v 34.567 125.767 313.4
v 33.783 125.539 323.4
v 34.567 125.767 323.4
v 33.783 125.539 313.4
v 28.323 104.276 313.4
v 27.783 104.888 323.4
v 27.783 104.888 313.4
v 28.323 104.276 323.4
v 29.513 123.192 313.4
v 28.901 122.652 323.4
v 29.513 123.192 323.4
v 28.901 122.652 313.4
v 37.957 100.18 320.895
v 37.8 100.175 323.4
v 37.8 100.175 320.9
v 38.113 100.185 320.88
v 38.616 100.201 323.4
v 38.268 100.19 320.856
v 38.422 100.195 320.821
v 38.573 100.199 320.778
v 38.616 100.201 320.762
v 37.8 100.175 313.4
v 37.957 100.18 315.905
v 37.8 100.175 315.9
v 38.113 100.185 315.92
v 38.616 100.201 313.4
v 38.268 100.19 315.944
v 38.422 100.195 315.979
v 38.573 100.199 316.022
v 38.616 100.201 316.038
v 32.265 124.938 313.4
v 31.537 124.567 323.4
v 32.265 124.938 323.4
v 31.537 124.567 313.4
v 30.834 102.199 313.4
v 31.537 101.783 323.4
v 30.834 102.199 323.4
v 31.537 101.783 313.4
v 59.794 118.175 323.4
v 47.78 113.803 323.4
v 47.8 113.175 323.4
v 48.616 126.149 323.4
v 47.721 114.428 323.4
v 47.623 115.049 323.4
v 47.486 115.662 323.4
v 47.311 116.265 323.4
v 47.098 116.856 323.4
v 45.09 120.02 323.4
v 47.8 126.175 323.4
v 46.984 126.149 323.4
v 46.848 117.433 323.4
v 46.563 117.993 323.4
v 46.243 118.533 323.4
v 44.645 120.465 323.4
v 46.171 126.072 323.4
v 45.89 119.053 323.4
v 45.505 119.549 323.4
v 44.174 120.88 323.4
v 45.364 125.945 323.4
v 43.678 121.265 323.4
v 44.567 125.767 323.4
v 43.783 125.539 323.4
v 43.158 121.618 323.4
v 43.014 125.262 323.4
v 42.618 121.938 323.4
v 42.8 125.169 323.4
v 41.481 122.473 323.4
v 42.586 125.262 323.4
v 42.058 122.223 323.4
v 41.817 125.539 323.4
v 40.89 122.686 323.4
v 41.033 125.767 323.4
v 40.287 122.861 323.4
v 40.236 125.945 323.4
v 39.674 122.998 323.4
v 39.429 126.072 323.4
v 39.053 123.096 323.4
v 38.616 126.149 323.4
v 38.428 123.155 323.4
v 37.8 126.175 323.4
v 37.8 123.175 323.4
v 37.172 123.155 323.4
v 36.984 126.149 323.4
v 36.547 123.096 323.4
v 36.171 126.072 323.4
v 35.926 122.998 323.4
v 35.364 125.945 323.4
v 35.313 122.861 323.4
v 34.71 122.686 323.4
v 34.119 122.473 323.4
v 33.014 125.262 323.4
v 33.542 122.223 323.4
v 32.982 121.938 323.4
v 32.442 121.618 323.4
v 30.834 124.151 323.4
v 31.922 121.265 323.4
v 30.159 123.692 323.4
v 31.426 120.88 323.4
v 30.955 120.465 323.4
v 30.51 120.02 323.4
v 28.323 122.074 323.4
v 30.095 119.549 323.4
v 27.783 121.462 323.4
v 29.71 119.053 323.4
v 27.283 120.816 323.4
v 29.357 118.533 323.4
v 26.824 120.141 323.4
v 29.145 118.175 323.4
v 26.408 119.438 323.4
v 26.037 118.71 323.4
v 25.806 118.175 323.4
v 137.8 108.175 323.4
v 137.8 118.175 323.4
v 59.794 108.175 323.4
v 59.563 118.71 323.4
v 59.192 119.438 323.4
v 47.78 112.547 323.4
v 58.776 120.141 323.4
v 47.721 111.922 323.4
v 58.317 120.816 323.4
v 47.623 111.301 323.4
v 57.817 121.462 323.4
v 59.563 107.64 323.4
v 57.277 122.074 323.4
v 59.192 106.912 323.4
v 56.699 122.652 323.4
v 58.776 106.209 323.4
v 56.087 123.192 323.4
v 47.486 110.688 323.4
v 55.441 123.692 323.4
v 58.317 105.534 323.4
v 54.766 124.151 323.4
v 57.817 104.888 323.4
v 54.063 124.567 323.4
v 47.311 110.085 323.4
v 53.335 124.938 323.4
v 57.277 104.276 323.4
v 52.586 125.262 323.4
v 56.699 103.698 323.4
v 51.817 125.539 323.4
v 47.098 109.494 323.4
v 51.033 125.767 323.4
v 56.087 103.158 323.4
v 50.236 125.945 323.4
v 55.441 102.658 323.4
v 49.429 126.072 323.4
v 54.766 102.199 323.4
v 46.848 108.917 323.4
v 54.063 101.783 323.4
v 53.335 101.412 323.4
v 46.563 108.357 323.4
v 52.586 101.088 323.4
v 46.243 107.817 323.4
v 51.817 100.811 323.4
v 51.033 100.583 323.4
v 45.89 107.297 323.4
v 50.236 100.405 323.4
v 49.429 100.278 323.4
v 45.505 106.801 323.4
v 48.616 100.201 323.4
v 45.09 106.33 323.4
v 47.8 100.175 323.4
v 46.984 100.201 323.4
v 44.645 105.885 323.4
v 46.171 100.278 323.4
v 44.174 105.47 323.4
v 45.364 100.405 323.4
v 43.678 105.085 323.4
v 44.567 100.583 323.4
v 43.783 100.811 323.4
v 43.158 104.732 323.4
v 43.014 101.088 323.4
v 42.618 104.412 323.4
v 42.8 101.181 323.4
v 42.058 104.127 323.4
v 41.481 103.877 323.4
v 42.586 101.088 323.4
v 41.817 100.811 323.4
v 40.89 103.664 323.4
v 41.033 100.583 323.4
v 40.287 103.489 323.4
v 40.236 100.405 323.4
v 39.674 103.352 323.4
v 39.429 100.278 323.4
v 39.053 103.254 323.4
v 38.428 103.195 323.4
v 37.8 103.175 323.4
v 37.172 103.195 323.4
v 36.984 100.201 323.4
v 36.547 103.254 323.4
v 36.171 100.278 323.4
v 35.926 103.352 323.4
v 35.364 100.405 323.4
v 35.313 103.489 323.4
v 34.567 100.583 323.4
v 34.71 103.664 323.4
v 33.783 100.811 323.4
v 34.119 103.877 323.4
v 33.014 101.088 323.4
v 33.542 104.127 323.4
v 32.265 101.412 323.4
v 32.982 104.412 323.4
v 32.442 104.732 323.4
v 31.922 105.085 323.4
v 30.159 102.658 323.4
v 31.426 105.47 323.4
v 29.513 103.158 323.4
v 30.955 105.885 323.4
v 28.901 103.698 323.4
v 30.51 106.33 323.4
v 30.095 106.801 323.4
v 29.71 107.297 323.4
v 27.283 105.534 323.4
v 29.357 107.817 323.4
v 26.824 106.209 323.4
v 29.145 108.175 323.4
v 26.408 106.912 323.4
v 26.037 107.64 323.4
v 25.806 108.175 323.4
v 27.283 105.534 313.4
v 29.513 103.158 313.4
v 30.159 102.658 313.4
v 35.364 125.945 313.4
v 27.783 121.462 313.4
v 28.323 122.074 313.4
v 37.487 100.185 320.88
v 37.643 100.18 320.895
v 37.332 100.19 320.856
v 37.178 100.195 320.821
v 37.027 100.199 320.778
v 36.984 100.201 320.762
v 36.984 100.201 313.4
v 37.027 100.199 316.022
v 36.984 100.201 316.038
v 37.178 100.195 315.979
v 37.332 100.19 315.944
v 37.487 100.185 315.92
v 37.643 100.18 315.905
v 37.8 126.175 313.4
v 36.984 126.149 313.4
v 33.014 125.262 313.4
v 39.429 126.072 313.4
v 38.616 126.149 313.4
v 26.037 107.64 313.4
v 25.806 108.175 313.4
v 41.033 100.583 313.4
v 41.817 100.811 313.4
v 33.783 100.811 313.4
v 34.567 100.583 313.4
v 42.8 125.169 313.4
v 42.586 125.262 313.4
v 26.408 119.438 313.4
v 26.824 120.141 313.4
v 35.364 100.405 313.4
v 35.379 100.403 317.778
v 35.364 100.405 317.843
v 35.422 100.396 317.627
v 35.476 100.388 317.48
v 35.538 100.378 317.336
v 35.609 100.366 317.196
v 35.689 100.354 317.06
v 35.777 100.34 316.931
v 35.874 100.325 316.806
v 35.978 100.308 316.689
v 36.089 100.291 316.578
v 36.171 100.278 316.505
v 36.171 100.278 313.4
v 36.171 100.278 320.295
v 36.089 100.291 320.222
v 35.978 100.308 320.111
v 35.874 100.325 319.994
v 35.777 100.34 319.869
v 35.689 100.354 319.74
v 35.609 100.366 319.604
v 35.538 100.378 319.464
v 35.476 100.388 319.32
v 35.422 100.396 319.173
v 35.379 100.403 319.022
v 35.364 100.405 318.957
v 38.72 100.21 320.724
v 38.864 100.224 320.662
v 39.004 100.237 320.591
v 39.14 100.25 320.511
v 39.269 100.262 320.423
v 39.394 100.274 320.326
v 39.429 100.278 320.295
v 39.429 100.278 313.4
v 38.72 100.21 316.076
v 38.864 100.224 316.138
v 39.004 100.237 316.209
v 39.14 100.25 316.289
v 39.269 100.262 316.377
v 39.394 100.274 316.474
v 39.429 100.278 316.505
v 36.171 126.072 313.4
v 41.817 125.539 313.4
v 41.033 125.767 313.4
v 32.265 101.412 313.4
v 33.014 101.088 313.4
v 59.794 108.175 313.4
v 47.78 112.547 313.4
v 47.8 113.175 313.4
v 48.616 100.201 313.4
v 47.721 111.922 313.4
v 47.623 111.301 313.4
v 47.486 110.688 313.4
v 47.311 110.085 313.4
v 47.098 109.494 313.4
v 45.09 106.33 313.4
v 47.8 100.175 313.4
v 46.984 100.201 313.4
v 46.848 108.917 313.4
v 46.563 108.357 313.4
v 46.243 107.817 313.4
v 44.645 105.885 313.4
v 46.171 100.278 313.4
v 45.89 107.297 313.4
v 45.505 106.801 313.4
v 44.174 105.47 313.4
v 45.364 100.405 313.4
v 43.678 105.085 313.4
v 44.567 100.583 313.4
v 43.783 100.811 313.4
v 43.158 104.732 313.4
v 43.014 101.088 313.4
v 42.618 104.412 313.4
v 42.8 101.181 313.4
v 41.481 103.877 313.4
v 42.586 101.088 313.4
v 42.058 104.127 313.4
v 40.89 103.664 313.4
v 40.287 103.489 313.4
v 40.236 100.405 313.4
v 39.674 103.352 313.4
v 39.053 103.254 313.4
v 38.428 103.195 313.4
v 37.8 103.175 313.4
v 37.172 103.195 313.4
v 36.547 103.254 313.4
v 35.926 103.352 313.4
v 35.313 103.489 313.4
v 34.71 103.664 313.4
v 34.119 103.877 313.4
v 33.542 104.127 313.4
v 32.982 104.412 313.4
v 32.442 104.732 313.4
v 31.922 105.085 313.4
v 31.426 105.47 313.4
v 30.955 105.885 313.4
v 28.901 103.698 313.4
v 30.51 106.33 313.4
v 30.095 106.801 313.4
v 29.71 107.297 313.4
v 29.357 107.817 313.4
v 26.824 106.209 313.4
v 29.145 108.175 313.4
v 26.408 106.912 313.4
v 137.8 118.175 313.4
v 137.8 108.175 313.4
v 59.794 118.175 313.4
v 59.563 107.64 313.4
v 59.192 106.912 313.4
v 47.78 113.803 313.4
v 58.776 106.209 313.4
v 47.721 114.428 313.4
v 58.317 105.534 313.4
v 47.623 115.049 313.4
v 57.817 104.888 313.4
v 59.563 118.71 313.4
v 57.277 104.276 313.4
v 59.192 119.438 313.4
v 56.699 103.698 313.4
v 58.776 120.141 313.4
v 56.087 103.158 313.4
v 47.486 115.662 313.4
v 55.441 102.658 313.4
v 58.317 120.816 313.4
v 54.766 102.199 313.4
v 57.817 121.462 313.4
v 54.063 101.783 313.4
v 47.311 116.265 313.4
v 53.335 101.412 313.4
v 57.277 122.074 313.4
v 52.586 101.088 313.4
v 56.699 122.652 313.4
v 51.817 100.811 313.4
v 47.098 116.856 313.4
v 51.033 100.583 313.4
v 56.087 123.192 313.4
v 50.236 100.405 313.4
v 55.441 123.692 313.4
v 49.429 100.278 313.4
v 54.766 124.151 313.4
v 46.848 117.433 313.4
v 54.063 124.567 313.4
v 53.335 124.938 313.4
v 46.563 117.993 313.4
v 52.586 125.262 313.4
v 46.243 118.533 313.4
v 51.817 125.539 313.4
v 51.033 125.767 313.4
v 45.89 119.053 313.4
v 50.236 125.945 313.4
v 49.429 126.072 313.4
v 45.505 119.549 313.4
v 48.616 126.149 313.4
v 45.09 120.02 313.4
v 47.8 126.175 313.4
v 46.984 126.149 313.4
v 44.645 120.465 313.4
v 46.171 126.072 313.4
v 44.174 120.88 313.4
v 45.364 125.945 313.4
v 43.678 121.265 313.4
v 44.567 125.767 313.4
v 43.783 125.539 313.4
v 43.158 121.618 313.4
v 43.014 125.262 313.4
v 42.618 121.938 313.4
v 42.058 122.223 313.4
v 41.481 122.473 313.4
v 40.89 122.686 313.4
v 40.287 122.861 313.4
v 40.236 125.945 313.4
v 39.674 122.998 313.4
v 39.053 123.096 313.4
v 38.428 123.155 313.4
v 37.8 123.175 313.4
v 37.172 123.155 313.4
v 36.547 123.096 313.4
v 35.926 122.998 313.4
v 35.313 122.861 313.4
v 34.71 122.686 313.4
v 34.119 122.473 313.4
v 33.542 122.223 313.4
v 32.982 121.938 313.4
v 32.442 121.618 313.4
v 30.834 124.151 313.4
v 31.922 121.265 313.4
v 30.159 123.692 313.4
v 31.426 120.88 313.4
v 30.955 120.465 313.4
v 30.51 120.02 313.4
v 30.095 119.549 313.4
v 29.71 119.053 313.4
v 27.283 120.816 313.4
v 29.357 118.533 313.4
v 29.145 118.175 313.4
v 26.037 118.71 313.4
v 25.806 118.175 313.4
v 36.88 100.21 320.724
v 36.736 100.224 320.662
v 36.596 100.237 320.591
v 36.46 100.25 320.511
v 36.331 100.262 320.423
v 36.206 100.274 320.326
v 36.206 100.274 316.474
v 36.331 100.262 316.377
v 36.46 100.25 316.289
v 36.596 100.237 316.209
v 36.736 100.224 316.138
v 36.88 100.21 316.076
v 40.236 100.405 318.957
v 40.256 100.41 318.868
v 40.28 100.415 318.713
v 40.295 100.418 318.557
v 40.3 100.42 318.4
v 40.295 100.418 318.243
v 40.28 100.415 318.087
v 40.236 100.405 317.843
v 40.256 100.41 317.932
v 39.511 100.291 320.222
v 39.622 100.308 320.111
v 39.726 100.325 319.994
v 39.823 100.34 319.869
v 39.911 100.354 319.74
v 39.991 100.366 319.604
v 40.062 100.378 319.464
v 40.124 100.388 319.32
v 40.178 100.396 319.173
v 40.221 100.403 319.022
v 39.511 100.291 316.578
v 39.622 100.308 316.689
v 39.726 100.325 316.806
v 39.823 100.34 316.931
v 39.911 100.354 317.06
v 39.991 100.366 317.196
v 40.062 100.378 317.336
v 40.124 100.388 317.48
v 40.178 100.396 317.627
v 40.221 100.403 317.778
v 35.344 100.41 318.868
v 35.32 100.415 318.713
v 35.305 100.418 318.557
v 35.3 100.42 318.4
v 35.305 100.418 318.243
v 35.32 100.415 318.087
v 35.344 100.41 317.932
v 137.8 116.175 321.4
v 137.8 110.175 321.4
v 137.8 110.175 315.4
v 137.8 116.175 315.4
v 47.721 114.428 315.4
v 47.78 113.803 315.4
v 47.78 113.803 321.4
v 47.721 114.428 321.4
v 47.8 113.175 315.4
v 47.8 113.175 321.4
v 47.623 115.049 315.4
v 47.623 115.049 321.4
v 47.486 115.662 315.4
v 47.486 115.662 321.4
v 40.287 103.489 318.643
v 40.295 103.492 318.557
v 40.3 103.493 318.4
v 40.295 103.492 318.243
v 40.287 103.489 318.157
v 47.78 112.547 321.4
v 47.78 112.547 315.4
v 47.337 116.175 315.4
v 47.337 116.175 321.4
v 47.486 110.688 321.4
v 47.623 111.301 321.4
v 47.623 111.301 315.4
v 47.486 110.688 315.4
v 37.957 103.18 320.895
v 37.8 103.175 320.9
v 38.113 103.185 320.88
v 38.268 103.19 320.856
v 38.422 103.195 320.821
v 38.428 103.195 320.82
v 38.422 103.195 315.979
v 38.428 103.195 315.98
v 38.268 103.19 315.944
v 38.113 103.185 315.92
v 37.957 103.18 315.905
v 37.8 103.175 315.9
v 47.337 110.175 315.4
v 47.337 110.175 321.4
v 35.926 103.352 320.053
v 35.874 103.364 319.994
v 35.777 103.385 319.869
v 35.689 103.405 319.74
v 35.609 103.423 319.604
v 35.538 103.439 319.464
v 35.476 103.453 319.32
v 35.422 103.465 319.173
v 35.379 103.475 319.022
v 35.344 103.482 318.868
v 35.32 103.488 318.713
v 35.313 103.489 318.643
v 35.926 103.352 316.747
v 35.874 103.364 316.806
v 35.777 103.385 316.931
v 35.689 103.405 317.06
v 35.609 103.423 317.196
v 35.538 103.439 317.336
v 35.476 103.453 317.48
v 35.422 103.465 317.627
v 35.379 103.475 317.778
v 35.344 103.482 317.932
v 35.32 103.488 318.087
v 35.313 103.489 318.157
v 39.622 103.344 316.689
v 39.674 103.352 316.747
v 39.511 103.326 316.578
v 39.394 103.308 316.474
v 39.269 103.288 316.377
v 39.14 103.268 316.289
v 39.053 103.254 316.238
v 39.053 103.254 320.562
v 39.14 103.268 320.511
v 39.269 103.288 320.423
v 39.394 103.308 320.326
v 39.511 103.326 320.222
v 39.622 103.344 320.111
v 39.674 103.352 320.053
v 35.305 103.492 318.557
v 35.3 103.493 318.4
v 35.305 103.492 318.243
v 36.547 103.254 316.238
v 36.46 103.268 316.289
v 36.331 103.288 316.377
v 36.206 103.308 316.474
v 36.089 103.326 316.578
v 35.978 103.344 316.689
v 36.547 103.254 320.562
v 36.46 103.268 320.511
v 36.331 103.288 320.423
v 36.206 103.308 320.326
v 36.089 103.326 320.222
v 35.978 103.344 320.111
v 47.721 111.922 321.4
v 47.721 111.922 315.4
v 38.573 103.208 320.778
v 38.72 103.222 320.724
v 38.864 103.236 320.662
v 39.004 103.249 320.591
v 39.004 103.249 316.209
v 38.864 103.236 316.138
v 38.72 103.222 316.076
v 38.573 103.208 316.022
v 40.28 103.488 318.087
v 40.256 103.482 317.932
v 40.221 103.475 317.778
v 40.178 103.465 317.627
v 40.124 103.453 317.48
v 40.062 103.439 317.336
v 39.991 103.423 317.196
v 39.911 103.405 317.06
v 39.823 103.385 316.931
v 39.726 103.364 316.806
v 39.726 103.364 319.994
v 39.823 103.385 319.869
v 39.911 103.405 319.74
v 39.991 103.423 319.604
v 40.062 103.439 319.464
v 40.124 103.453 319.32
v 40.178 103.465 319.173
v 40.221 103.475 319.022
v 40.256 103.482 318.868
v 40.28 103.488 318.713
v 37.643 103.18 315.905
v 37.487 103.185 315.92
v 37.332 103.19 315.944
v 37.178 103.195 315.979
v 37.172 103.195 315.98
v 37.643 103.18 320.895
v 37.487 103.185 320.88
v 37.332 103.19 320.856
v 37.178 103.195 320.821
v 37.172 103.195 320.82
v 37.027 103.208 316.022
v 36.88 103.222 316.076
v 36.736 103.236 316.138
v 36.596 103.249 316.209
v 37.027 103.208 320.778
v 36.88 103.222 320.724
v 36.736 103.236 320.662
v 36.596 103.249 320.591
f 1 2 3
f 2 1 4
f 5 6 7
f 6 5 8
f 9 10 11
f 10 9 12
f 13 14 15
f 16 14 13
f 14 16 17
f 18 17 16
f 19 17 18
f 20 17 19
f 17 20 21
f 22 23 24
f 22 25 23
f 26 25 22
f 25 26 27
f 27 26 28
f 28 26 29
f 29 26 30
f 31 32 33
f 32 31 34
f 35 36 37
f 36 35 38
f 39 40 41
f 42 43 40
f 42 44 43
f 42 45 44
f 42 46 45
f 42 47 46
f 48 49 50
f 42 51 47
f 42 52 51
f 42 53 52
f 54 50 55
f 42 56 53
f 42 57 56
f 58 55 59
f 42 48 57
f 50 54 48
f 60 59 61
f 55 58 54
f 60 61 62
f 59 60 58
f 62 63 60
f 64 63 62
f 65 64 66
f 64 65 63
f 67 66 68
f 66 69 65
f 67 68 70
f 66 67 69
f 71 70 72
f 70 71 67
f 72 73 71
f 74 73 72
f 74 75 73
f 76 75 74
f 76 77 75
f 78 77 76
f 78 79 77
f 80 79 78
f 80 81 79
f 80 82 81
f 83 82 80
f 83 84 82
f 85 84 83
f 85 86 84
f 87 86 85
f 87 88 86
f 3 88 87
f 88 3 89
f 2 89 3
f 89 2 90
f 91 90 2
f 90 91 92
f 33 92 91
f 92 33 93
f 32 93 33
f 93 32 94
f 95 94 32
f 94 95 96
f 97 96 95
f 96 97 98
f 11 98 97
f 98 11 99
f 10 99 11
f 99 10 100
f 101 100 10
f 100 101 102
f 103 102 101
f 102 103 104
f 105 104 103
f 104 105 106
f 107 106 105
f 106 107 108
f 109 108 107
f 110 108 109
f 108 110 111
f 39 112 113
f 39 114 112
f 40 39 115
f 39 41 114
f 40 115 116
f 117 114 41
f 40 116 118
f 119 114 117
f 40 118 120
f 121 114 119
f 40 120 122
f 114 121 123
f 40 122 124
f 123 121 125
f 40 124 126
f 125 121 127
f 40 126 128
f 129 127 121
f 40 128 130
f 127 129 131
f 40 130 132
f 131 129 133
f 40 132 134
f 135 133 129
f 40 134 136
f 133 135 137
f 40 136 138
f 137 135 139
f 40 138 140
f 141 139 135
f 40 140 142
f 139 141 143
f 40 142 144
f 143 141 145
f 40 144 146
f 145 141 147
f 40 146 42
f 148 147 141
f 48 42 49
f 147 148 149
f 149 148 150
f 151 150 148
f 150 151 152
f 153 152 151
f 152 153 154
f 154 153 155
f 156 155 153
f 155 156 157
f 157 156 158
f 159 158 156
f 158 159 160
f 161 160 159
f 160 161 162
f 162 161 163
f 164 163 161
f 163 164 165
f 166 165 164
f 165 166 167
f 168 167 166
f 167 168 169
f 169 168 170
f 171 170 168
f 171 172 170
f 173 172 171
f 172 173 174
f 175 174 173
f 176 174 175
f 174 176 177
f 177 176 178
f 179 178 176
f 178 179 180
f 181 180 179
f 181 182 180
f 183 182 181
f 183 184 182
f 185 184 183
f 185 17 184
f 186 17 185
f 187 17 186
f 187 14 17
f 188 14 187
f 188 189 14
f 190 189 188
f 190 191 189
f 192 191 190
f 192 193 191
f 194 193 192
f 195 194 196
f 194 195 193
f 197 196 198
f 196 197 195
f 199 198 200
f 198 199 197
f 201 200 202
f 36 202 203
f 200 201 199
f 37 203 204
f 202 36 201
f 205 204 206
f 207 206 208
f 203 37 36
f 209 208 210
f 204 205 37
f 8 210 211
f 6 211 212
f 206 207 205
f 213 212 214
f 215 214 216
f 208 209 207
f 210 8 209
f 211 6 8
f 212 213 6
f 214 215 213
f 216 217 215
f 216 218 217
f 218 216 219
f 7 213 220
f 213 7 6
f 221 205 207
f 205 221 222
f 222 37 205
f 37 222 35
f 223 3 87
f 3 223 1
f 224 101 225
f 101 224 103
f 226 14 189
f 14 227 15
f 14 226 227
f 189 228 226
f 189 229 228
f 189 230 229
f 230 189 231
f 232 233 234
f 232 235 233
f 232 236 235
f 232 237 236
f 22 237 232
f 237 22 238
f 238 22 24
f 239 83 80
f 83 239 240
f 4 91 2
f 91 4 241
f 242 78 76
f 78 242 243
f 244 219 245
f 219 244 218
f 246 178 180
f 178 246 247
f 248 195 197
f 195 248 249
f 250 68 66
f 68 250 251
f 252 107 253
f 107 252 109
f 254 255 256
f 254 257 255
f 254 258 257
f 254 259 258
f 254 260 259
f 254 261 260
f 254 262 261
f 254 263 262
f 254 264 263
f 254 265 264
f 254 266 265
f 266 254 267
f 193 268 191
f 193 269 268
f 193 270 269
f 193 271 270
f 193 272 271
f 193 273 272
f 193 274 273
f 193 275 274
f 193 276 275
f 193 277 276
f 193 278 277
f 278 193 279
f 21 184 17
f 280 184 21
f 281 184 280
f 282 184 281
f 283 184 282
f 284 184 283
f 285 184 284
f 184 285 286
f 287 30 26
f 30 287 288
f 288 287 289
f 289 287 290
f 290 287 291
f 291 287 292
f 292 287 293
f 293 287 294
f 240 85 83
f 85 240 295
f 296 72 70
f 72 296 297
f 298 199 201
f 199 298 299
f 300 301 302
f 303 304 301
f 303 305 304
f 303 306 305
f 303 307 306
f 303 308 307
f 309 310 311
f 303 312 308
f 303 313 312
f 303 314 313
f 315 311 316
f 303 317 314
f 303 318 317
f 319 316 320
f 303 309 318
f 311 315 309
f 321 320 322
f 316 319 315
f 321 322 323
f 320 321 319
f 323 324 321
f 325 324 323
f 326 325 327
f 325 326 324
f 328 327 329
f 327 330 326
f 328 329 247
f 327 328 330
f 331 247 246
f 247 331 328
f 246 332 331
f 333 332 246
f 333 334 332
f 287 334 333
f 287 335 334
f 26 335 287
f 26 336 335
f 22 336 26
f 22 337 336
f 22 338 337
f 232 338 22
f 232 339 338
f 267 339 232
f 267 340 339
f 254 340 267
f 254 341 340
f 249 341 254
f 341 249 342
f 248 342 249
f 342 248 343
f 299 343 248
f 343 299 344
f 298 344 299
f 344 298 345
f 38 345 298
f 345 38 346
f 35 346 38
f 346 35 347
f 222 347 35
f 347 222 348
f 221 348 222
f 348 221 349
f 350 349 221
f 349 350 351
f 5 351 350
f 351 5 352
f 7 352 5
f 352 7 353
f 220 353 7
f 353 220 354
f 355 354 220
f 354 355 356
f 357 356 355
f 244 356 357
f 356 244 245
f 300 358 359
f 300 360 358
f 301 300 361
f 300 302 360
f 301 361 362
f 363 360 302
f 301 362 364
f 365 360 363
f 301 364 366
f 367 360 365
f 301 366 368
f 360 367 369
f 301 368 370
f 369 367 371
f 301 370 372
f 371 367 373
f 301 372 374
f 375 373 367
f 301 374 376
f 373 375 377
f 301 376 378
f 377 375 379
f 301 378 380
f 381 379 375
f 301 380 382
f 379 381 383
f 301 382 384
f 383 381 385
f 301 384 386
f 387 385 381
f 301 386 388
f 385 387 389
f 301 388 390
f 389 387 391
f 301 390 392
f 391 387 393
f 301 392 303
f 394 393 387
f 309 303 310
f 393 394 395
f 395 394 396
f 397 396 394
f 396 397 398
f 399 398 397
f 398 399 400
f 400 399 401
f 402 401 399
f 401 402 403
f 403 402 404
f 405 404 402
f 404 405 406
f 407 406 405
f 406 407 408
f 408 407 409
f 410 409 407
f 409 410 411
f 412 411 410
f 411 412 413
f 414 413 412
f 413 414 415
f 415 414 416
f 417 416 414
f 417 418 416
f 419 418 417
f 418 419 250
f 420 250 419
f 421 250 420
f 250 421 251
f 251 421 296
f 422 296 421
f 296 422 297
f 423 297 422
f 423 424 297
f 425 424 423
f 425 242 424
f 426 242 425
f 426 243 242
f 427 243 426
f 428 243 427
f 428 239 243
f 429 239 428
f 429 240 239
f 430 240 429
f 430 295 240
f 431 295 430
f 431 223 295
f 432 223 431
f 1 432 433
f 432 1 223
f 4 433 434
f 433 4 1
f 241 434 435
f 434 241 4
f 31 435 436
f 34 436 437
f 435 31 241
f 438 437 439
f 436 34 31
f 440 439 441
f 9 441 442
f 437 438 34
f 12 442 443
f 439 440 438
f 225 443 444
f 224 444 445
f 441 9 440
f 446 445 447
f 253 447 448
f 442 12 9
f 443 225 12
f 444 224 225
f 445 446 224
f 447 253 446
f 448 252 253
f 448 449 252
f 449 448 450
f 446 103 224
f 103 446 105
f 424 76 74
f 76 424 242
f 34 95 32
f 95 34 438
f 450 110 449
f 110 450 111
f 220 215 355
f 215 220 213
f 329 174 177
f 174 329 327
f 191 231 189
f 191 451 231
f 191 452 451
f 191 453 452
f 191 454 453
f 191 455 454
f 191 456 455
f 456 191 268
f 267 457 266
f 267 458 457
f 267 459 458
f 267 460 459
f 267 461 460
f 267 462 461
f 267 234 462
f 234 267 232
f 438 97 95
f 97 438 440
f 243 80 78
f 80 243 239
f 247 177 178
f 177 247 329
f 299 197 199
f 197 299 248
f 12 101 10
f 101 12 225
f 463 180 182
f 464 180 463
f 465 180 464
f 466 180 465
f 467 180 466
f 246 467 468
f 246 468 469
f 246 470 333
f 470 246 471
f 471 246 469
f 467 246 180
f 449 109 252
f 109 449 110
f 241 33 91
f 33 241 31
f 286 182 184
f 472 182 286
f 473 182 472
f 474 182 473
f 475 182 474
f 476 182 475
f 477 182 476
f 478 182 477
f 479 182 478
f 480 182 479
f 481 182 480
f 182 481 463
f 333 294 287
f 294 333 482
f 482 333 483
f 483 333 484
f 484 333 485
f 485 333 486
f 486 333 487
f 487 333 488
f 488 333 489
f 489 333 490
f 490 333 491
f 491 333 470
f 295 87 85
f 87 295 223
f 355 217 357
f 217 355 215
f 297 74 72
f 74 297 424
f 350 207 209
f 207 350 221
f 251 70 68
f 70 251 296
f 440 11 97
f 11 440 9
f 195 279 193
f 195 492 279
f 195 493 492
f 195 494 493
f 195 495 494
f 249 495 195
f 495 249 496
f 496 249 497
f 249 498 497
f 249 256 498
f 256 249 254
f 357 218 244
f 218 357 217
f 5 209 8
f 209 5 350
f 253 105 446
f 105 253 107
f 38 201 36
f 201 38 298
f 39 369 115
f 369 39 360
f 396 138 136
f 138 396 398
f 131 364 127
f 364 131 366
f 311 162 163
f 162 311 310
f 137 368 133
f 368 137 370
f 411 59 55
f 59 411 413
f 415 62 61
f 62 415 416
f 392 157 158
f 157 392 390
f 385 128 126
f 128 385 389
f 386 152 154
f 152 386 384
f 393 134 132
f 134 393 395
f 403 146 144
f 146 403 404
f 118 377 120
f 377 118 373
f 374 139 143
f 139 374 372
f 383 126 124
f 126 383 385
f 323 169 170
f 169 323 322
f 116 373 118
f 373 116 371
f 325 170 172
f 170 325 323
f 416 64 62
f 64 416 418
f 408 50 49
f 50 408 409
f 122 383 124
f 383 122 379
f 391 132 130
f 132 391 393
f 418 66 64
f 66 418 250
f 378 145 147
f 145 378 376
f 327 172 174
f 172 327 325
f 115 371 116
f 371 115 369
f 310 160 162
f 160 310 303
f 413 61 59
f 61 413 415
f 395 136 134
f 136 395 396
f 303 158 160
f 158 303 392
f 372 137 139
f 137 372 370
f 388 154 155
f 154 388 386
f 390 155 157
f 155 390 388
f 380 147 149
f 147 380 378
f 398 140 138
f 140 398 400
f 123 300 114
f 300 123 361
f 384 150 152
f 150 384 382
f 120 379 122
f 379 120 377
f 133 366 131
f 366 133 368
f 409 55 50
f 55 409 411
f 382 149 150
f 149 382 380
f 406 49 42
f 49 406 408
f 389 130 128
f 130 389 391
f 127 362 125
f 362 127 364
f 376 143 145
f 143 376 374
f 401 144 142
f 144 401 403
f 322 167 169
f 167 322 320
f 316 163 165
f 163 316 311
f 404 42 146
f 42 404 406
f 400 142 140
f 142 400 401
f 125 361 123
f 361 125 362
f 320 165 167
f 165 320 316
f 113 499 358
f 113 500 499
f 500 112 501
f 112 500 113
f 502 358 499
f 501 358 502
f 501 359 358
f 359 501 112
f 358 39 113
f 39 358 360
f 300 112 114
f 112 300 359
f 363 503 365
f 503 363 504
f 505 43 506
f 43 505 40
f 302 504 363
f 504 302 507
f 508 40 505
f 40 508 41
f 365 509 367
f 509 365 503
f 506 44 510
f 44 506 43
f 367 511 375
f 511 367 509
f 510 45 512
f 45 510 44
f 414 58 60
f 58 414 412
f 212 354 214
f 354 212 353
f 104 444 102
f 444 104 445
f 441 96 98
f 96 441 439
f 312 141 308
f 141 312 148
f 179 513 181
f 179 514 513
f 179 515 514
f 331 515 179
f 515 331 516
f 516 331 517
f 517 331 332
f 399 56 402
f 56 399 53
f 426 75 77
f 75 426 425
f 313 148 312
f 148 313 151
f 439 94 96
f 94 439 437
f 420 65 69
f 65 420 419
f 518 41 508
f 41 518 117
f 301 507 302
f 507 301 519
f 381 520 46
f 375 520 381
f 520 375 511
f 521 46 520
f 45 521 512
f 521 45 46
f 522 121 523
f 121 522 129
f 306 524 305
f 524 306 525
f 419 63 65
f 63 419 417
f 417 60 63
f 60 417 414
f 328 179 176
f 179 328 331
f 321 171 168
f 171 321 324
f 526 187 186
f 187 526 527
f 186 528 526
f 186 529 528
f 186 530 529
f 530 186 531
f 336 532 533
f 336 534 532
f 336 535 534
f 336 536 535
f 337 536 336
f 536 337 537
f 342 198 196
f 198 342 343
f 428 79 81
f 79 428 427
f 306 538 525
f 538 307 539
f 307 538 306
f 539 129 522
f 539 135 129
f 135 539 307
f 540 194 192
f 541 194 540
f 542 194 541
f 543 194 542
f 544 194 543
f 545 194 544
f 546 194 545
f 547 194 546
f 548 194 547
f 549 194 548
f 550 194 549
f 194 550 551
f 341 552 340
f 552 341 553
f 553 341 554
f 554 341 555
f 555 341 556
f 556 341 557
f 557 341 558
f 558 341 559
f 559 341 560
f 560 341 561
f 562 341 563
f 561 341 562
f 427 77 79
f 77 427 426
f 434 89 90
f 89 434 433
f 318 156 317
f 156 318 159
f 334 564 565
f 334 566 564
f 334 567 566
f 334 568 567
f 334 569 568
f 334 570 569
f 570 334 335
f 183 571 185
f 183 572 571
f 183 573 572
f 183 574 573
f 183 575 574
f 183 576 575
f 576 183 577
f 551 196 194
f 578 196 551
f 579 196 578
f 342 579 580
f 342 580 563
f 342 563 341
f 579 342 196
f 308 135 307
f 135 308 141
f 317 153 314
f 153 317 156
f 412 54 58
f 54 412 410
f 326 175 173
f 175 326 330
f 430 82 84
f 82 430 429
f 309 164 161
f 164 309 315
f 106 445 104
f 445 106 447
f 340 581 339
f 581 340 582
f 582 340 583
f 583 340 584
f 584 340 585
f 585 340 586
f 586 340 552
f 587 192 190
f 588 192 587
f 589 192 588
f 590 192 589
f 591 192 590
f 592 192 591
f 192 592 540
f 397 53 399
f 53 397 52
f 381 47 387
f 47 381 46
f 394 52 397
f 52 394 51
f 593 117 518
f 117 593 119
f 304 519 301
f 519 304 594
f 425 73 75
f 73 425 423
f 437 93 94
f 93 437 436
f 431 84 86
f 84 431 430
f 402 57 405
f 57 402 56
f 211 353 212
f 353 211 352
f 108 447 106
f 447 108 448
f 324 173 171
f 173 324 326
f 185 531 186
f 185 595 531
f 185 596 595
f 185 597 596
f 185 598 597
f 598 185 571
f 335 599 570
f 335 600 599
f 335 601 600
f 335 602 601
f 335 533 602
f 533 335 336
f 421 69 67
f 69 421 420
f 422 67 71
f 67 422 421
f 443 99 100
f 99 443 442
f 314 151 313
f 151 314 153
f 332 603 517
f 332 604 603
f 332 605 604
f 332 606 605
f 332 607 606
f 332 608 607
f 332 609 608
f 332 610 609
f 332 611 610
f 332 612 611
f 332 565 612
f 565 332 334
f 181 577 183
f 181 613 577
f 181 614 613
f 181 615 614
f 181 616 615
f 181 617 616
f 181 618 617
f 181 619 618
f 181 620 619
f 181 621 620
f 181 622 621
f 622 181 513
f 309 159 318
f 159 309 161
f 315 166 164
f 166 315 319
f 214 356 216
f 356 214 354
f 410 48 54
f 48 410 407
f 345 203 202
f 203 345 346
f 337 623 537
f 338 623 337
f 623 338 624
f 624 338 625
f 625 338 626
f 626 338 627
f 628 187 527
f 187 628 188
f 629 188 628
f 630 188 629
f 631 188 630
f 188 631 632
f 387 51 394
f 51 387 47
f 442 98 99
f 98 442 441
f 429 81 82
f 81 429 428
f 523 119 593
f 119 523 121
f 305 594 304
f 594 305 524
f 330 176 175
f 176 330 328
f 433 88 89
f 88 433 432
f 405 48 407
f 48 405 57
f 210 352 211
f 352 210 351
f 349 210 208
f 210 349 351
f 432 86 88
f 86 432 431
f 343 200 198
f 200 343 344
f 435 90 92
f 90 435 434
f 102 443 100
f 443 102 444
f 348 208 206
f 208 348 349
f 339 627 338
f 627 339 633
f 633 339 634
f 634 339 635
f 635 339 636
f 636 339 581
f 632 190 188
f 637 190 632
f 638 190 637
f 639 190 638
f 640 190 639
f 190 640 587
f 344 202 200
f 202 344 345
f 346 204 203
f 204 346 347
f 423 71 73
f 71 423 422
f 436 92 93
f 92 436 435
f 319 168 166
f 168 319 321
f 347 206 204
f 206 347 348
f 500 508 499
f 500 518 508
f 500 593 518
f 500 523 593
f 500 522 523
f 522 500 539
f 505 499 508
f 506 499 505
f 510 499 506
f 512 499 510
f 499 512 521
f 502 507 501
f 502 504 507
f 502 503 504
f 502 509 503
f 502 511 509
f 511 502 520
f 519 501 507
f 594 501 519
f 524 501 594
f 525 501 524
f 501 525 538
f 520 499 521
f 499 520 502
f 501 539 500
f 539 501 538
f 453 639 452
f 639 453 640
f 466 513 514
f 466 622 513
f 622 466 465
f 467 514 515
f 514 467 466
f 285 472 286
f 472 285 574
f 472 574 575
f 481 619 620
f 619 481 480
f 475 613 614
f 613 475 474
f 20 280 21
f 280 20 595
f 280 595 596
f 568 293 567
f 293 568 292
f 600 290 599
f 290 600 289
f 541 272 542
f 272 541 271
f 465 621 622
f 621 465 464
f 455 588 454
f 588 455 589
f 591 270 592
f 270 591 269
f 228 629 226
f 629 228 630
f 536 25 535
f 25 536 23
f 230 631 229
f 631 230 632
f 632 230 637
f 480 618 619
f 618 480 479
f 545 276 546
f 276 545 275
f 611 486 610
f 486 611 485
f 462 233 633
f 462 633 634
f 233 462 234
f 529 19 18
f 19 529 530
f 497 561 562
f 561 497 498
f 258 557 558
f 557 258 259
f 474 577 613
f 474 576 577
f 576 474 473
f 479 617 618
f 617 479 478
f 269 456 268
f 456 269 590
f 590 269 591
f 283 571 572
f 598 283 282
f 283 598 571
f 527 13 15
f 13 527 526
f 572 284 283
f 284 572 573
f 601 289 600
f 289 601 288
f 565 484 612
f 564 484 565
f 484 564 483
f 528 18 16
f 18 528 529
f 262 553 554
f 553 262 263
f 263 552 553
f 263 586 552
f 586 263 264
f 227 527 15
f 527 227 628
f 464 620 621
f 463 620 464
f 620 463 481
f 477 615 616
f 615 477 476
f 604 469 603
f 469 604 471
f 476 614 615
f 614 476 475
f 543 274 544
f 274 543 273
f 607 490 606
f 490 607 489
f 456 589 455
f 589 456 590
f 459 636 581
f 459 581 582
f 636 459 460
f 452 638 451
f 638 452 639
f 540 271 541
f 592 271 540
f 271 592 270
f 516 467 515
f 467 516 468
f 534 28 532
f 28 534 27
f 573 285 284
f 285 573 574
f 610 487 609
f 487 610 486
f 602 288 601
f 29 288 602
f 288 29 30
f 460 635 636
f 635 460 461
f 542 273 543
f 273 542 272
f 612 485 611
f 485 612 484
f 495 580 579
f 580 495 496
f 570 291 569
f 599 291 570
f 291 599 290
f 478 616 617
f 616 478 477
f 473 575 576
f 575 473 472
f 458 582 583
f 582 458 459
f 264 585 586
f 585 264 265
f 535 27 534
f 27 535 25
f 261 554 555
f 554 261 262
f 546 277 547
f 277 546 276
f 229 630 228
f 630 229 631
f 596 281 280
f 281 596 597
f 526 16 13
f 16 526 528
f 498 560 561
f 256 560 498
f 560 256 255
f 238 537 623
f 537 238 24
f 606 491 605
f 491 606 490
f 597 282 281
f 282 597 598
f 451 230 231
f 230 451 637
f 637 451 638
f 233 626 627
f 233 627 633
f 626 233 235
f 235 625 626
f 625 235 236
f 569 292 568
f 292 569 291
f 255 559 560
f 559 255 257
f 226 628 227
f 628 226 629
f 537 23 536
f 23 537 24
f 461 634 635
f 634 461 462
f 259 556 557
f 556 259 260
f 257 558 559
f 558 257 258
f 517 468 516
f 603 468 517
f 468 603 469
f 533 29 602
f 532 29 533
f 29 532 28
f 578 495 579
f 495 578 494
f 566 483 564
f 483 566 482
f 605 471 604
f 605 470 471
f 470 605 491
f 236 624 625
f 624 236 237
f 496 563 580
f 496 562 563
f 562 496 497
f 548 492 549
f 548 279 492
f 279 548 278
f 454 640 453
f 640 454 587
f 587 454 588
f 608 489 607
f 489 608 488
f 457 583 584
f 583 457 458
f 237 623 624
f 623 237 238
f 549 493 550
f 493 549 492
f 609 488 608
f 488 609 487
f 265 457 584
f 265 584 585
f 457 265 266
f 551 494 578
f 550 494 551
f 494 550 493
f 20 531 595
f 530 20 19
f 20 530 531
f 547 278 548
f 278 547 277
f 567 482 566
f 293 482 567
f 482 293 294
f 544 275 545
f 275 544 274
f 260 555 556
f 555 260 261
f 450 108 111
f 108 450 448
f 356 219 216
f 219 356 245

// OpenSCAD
// file: funcBastaoRetratil.scad
// ----- ----- ----- Declaração de Variáveis ----- ----- ----- //

res=10;
folga1=0.125;
folga2=0.175;
eFMO=25.2; //entreFurosMesaOptica
rFuro=6/2;

folginhacobre=1;
nxfuroscobre=4;
nyfuroscobre=3;

cux=(nxfuroscobre-1)*eFMO+2*rFuro+2*folga1;
cuy=(nyfuroscobre-1)*eFMO+2*rFuro+2*folga1;
cuz=28.4;
zcu=10;

cux_compare=1;
cuy_compare=1;
cuz_compare=1;

Ly=70;
//Lx=20;
Lx=cux+2*folginhacobre;
pex=20;
//pex=cux+2*folginhacobre;

rCil=20/2;
altCil=170;
tyCil=rCil+5; //'t' vem de translação, e 'y' vem de estar no eixo y
txCil=30; //'t' vem de translação, e 'y' vem de estar no eixo y

rCone=25;
altCone=rCone+20;

abertura=60; //é um ângulo dado em graus
maoAmais=2.5;
altmao=10;
altmao2=10;
altmao3=35;

cubebracox=55;
cubebracoy=rCil;
cubebracoz=altmao;
aux_scale=0.6;

rKint=rCil-1;
rKext=rCil;
altK=altmao2/2;

rpivot=2.5;
altpivot=altmao2;

rCint1=1;
rCint2=1;
rCext1=1;
rCext2=1;
altC=altmao2/2; // 'C' é de Canhão
entreDistCanhao=10;

altpeq=3;

// ----- ----- ----- Declaração de Variáveis ----- ----- ----- //

//use <threads-library-by-cuiso-daniel-v7.scad>
use <threads-library-by-cuiso-v1.scad>

// ----- ----- ----- MAIN ----- ----- ----- //
module funcBastaoRetratil(peca=2,alt,r=20/2,esp=3,res=100,folga=0.125){
    if(peca==3){
        // Peça Maior
        difference(){
            cylinder(alt,r-folga,r-folga,$fn=res);
            #cylinder(alt,r-esp+folga,r-esp+folga,$fn=res);
            #translate([0,0,alt-5])
            #rotate([90,0,0])
            #cylinder(2*alt,5/2,5/2,$fn=res);
        }
        
        //Peça menor
        translate([0,0,alt-10])
        difference(){
            cylinder(alt,r-esp,r-esp,$fn=res);
            #cylinder(alt,r-2*esp,r-2*esp,$fn=res);
        }
        translate([0,0,2*alt-10])cylinder(altpeq,r-esp,r-esp,$fn=res);
        translate([0,0,2*alt-10+altpeq])
        difference(){
            cylinder(d=10, h=7, $fn = res); 
            #thread_for_nut(diameter=6, length=7, usrclearance=0.1); 
        }
        
        //Parafuso
        translate([r*1.25+9+4.5,0,0]){
            thread_for_screw(diameter=6, length=10); 
            cylinder(d=9+4.5, h=3, $fn=6);
        }
    }else if(peca==0){
        // Peça Maior
        difference(){
            cylinder(alt,r-folga,r-folga,$fn=res);
            #cylinder(alt,r-esp+folga,r-esp+folga,$fn=res);
            #translate([0,0,alt-5])
            #rotate([90,0,0])
            #cylinder(2*alt,5/2,5/2,$fn=res);
        }
    }else if(peca==1){
        //Peça menor
        translate([0,0,alt-10])
        difference(){
            cylinder(alt,r-esp,r-esp,$fn=res);
            #cylinder(alt,r-2*esp,r-2*esp,$fn=res);
        }
        translate([0,0,2*alt-10])cylinder(altpeq,r-esp,r-esp,$fn=res);
        translate([0,0,2*alt-10+altpeq])
        difference(){
            cylinder(d=10, h=7, $fn = res); 
            #thread_for_nut(diameter=6, length=7, usrclearance=0.1); 
        }
    }else if(peca==2){
        //Parafuso
        translate([r*1.25+9+4.5,0,0]){
            thread_for_screw(diameter=6, length=10); 
            cylinder(d=9+4.5, h=3, $fn=6);
        }
    }
    echo("Altura máxima do chão até a parte de baixo do braço (Nota: Não se considera a altura que entra por baixo na peça de cima):");
    echo(2*alt-10+altpeq+7+5+3);
}

funcBastaoRetratil(peca=2,alt=200);
// main file
// ----- ----- ----- Declaração de Variáveis ----- ----- ----- //

res=100;
folga1=0.125;
folga2=0.175;
eFMO=25.2; //entreFurosMesaOptica
rFuro=6/2;

folginhacobre=1;
nxfuroscobre=4;
nyfuroscobre=3;

cux=(nxfuroscobre-1)*eFMO+2*rFuro+2*folga1;
cuy=(nyfuroscobre-1)*eFMO+2*rFuro+2*folga1;
cuz=28.4;
zcu=10;

cux_compare=1;
cuy_compare=1;
cuz_compare=1;

Ly=70;
//Lx=20;
Lx=cux+2*folginhacobre;
pex=20;
//pex=cux+2*folginhacobre;

rCil=20/2;
altCil=270;
tyCil=rCil+5; //'t' vem de translação, e 'y' vem de estar no eixo y
txCil=30; //'t' vem de translação, e 'y' vem de estar no eixo y

rCone=25;
altCone=rCone+20;

maoAmais=3;
altmao=10;
altmao2=10;
altmao3=27.5;

cubebracox=200/2;
cubebracoy=rCil;
cubebracoz=altmao;
aux_scale=0.6;

esp=3;
rKint=rCil-esp;
rKext=rCil;
altK=altmao2/2;

rpivot=6;
altpivot=altmao2;

rCint1=1;
rCint2=1;
rCext1=1;
rCext2=1;
altC=altmao2/2; // 'C' é de Canhão
entreDistCanhao=10;

// ----- ----- ----- Declaração de Funções ----- ----- ----- //
use <funcoes_GFCx.scad>
use <funcBastaoRetratil.scad>

// ----- ----- ----- MAIN ----- ----- ----- //

translate([0,1.5*(cuy+2*folginhacobre),0]){
    // Braço de Lego
    translate([eFMO*(1.5),eFMO,cuz+zcu+altCil+5])
    difference(){
        translate([0,0,0]){
            cylinder(altmao,rCil+maoAmais,rCil+maoAmais,$fn=res);
            translate([10,0,0])cylinder(altmao,rCil+maoAmais,rCil+maoAmais,$fn=res);
            translate([0,-cubebracoy/2,0])cube([cubebracox,cubebracoy,cubebracoz]);
        }
        #cylinder(altmao,rCil,rCil,$fn=res);
        #translate([0,cubebracoy/2-cubebracoy*(aux_scale/2),cubebracoz/2-cubebracoz*(aux_scale/2)])
        #translate([0,-cubebracoy/2,0])
        #cube([cubebracox,cubebracoy*aux_scale,cubebracoz*aux_scale]);
        #translate([0,0,altmao2/2])
        #rotate([90,0,0])
        #cylinder(2*20,5/2,5/2,$fn=res);
        #translate([-altmao/2,altmao/2,altmao2/2-altmao/2])
        #rotate([0,0,-90])
        #rotate([90,0,0])
        #cube([altmao,altmao,2*20]);
    }
}
